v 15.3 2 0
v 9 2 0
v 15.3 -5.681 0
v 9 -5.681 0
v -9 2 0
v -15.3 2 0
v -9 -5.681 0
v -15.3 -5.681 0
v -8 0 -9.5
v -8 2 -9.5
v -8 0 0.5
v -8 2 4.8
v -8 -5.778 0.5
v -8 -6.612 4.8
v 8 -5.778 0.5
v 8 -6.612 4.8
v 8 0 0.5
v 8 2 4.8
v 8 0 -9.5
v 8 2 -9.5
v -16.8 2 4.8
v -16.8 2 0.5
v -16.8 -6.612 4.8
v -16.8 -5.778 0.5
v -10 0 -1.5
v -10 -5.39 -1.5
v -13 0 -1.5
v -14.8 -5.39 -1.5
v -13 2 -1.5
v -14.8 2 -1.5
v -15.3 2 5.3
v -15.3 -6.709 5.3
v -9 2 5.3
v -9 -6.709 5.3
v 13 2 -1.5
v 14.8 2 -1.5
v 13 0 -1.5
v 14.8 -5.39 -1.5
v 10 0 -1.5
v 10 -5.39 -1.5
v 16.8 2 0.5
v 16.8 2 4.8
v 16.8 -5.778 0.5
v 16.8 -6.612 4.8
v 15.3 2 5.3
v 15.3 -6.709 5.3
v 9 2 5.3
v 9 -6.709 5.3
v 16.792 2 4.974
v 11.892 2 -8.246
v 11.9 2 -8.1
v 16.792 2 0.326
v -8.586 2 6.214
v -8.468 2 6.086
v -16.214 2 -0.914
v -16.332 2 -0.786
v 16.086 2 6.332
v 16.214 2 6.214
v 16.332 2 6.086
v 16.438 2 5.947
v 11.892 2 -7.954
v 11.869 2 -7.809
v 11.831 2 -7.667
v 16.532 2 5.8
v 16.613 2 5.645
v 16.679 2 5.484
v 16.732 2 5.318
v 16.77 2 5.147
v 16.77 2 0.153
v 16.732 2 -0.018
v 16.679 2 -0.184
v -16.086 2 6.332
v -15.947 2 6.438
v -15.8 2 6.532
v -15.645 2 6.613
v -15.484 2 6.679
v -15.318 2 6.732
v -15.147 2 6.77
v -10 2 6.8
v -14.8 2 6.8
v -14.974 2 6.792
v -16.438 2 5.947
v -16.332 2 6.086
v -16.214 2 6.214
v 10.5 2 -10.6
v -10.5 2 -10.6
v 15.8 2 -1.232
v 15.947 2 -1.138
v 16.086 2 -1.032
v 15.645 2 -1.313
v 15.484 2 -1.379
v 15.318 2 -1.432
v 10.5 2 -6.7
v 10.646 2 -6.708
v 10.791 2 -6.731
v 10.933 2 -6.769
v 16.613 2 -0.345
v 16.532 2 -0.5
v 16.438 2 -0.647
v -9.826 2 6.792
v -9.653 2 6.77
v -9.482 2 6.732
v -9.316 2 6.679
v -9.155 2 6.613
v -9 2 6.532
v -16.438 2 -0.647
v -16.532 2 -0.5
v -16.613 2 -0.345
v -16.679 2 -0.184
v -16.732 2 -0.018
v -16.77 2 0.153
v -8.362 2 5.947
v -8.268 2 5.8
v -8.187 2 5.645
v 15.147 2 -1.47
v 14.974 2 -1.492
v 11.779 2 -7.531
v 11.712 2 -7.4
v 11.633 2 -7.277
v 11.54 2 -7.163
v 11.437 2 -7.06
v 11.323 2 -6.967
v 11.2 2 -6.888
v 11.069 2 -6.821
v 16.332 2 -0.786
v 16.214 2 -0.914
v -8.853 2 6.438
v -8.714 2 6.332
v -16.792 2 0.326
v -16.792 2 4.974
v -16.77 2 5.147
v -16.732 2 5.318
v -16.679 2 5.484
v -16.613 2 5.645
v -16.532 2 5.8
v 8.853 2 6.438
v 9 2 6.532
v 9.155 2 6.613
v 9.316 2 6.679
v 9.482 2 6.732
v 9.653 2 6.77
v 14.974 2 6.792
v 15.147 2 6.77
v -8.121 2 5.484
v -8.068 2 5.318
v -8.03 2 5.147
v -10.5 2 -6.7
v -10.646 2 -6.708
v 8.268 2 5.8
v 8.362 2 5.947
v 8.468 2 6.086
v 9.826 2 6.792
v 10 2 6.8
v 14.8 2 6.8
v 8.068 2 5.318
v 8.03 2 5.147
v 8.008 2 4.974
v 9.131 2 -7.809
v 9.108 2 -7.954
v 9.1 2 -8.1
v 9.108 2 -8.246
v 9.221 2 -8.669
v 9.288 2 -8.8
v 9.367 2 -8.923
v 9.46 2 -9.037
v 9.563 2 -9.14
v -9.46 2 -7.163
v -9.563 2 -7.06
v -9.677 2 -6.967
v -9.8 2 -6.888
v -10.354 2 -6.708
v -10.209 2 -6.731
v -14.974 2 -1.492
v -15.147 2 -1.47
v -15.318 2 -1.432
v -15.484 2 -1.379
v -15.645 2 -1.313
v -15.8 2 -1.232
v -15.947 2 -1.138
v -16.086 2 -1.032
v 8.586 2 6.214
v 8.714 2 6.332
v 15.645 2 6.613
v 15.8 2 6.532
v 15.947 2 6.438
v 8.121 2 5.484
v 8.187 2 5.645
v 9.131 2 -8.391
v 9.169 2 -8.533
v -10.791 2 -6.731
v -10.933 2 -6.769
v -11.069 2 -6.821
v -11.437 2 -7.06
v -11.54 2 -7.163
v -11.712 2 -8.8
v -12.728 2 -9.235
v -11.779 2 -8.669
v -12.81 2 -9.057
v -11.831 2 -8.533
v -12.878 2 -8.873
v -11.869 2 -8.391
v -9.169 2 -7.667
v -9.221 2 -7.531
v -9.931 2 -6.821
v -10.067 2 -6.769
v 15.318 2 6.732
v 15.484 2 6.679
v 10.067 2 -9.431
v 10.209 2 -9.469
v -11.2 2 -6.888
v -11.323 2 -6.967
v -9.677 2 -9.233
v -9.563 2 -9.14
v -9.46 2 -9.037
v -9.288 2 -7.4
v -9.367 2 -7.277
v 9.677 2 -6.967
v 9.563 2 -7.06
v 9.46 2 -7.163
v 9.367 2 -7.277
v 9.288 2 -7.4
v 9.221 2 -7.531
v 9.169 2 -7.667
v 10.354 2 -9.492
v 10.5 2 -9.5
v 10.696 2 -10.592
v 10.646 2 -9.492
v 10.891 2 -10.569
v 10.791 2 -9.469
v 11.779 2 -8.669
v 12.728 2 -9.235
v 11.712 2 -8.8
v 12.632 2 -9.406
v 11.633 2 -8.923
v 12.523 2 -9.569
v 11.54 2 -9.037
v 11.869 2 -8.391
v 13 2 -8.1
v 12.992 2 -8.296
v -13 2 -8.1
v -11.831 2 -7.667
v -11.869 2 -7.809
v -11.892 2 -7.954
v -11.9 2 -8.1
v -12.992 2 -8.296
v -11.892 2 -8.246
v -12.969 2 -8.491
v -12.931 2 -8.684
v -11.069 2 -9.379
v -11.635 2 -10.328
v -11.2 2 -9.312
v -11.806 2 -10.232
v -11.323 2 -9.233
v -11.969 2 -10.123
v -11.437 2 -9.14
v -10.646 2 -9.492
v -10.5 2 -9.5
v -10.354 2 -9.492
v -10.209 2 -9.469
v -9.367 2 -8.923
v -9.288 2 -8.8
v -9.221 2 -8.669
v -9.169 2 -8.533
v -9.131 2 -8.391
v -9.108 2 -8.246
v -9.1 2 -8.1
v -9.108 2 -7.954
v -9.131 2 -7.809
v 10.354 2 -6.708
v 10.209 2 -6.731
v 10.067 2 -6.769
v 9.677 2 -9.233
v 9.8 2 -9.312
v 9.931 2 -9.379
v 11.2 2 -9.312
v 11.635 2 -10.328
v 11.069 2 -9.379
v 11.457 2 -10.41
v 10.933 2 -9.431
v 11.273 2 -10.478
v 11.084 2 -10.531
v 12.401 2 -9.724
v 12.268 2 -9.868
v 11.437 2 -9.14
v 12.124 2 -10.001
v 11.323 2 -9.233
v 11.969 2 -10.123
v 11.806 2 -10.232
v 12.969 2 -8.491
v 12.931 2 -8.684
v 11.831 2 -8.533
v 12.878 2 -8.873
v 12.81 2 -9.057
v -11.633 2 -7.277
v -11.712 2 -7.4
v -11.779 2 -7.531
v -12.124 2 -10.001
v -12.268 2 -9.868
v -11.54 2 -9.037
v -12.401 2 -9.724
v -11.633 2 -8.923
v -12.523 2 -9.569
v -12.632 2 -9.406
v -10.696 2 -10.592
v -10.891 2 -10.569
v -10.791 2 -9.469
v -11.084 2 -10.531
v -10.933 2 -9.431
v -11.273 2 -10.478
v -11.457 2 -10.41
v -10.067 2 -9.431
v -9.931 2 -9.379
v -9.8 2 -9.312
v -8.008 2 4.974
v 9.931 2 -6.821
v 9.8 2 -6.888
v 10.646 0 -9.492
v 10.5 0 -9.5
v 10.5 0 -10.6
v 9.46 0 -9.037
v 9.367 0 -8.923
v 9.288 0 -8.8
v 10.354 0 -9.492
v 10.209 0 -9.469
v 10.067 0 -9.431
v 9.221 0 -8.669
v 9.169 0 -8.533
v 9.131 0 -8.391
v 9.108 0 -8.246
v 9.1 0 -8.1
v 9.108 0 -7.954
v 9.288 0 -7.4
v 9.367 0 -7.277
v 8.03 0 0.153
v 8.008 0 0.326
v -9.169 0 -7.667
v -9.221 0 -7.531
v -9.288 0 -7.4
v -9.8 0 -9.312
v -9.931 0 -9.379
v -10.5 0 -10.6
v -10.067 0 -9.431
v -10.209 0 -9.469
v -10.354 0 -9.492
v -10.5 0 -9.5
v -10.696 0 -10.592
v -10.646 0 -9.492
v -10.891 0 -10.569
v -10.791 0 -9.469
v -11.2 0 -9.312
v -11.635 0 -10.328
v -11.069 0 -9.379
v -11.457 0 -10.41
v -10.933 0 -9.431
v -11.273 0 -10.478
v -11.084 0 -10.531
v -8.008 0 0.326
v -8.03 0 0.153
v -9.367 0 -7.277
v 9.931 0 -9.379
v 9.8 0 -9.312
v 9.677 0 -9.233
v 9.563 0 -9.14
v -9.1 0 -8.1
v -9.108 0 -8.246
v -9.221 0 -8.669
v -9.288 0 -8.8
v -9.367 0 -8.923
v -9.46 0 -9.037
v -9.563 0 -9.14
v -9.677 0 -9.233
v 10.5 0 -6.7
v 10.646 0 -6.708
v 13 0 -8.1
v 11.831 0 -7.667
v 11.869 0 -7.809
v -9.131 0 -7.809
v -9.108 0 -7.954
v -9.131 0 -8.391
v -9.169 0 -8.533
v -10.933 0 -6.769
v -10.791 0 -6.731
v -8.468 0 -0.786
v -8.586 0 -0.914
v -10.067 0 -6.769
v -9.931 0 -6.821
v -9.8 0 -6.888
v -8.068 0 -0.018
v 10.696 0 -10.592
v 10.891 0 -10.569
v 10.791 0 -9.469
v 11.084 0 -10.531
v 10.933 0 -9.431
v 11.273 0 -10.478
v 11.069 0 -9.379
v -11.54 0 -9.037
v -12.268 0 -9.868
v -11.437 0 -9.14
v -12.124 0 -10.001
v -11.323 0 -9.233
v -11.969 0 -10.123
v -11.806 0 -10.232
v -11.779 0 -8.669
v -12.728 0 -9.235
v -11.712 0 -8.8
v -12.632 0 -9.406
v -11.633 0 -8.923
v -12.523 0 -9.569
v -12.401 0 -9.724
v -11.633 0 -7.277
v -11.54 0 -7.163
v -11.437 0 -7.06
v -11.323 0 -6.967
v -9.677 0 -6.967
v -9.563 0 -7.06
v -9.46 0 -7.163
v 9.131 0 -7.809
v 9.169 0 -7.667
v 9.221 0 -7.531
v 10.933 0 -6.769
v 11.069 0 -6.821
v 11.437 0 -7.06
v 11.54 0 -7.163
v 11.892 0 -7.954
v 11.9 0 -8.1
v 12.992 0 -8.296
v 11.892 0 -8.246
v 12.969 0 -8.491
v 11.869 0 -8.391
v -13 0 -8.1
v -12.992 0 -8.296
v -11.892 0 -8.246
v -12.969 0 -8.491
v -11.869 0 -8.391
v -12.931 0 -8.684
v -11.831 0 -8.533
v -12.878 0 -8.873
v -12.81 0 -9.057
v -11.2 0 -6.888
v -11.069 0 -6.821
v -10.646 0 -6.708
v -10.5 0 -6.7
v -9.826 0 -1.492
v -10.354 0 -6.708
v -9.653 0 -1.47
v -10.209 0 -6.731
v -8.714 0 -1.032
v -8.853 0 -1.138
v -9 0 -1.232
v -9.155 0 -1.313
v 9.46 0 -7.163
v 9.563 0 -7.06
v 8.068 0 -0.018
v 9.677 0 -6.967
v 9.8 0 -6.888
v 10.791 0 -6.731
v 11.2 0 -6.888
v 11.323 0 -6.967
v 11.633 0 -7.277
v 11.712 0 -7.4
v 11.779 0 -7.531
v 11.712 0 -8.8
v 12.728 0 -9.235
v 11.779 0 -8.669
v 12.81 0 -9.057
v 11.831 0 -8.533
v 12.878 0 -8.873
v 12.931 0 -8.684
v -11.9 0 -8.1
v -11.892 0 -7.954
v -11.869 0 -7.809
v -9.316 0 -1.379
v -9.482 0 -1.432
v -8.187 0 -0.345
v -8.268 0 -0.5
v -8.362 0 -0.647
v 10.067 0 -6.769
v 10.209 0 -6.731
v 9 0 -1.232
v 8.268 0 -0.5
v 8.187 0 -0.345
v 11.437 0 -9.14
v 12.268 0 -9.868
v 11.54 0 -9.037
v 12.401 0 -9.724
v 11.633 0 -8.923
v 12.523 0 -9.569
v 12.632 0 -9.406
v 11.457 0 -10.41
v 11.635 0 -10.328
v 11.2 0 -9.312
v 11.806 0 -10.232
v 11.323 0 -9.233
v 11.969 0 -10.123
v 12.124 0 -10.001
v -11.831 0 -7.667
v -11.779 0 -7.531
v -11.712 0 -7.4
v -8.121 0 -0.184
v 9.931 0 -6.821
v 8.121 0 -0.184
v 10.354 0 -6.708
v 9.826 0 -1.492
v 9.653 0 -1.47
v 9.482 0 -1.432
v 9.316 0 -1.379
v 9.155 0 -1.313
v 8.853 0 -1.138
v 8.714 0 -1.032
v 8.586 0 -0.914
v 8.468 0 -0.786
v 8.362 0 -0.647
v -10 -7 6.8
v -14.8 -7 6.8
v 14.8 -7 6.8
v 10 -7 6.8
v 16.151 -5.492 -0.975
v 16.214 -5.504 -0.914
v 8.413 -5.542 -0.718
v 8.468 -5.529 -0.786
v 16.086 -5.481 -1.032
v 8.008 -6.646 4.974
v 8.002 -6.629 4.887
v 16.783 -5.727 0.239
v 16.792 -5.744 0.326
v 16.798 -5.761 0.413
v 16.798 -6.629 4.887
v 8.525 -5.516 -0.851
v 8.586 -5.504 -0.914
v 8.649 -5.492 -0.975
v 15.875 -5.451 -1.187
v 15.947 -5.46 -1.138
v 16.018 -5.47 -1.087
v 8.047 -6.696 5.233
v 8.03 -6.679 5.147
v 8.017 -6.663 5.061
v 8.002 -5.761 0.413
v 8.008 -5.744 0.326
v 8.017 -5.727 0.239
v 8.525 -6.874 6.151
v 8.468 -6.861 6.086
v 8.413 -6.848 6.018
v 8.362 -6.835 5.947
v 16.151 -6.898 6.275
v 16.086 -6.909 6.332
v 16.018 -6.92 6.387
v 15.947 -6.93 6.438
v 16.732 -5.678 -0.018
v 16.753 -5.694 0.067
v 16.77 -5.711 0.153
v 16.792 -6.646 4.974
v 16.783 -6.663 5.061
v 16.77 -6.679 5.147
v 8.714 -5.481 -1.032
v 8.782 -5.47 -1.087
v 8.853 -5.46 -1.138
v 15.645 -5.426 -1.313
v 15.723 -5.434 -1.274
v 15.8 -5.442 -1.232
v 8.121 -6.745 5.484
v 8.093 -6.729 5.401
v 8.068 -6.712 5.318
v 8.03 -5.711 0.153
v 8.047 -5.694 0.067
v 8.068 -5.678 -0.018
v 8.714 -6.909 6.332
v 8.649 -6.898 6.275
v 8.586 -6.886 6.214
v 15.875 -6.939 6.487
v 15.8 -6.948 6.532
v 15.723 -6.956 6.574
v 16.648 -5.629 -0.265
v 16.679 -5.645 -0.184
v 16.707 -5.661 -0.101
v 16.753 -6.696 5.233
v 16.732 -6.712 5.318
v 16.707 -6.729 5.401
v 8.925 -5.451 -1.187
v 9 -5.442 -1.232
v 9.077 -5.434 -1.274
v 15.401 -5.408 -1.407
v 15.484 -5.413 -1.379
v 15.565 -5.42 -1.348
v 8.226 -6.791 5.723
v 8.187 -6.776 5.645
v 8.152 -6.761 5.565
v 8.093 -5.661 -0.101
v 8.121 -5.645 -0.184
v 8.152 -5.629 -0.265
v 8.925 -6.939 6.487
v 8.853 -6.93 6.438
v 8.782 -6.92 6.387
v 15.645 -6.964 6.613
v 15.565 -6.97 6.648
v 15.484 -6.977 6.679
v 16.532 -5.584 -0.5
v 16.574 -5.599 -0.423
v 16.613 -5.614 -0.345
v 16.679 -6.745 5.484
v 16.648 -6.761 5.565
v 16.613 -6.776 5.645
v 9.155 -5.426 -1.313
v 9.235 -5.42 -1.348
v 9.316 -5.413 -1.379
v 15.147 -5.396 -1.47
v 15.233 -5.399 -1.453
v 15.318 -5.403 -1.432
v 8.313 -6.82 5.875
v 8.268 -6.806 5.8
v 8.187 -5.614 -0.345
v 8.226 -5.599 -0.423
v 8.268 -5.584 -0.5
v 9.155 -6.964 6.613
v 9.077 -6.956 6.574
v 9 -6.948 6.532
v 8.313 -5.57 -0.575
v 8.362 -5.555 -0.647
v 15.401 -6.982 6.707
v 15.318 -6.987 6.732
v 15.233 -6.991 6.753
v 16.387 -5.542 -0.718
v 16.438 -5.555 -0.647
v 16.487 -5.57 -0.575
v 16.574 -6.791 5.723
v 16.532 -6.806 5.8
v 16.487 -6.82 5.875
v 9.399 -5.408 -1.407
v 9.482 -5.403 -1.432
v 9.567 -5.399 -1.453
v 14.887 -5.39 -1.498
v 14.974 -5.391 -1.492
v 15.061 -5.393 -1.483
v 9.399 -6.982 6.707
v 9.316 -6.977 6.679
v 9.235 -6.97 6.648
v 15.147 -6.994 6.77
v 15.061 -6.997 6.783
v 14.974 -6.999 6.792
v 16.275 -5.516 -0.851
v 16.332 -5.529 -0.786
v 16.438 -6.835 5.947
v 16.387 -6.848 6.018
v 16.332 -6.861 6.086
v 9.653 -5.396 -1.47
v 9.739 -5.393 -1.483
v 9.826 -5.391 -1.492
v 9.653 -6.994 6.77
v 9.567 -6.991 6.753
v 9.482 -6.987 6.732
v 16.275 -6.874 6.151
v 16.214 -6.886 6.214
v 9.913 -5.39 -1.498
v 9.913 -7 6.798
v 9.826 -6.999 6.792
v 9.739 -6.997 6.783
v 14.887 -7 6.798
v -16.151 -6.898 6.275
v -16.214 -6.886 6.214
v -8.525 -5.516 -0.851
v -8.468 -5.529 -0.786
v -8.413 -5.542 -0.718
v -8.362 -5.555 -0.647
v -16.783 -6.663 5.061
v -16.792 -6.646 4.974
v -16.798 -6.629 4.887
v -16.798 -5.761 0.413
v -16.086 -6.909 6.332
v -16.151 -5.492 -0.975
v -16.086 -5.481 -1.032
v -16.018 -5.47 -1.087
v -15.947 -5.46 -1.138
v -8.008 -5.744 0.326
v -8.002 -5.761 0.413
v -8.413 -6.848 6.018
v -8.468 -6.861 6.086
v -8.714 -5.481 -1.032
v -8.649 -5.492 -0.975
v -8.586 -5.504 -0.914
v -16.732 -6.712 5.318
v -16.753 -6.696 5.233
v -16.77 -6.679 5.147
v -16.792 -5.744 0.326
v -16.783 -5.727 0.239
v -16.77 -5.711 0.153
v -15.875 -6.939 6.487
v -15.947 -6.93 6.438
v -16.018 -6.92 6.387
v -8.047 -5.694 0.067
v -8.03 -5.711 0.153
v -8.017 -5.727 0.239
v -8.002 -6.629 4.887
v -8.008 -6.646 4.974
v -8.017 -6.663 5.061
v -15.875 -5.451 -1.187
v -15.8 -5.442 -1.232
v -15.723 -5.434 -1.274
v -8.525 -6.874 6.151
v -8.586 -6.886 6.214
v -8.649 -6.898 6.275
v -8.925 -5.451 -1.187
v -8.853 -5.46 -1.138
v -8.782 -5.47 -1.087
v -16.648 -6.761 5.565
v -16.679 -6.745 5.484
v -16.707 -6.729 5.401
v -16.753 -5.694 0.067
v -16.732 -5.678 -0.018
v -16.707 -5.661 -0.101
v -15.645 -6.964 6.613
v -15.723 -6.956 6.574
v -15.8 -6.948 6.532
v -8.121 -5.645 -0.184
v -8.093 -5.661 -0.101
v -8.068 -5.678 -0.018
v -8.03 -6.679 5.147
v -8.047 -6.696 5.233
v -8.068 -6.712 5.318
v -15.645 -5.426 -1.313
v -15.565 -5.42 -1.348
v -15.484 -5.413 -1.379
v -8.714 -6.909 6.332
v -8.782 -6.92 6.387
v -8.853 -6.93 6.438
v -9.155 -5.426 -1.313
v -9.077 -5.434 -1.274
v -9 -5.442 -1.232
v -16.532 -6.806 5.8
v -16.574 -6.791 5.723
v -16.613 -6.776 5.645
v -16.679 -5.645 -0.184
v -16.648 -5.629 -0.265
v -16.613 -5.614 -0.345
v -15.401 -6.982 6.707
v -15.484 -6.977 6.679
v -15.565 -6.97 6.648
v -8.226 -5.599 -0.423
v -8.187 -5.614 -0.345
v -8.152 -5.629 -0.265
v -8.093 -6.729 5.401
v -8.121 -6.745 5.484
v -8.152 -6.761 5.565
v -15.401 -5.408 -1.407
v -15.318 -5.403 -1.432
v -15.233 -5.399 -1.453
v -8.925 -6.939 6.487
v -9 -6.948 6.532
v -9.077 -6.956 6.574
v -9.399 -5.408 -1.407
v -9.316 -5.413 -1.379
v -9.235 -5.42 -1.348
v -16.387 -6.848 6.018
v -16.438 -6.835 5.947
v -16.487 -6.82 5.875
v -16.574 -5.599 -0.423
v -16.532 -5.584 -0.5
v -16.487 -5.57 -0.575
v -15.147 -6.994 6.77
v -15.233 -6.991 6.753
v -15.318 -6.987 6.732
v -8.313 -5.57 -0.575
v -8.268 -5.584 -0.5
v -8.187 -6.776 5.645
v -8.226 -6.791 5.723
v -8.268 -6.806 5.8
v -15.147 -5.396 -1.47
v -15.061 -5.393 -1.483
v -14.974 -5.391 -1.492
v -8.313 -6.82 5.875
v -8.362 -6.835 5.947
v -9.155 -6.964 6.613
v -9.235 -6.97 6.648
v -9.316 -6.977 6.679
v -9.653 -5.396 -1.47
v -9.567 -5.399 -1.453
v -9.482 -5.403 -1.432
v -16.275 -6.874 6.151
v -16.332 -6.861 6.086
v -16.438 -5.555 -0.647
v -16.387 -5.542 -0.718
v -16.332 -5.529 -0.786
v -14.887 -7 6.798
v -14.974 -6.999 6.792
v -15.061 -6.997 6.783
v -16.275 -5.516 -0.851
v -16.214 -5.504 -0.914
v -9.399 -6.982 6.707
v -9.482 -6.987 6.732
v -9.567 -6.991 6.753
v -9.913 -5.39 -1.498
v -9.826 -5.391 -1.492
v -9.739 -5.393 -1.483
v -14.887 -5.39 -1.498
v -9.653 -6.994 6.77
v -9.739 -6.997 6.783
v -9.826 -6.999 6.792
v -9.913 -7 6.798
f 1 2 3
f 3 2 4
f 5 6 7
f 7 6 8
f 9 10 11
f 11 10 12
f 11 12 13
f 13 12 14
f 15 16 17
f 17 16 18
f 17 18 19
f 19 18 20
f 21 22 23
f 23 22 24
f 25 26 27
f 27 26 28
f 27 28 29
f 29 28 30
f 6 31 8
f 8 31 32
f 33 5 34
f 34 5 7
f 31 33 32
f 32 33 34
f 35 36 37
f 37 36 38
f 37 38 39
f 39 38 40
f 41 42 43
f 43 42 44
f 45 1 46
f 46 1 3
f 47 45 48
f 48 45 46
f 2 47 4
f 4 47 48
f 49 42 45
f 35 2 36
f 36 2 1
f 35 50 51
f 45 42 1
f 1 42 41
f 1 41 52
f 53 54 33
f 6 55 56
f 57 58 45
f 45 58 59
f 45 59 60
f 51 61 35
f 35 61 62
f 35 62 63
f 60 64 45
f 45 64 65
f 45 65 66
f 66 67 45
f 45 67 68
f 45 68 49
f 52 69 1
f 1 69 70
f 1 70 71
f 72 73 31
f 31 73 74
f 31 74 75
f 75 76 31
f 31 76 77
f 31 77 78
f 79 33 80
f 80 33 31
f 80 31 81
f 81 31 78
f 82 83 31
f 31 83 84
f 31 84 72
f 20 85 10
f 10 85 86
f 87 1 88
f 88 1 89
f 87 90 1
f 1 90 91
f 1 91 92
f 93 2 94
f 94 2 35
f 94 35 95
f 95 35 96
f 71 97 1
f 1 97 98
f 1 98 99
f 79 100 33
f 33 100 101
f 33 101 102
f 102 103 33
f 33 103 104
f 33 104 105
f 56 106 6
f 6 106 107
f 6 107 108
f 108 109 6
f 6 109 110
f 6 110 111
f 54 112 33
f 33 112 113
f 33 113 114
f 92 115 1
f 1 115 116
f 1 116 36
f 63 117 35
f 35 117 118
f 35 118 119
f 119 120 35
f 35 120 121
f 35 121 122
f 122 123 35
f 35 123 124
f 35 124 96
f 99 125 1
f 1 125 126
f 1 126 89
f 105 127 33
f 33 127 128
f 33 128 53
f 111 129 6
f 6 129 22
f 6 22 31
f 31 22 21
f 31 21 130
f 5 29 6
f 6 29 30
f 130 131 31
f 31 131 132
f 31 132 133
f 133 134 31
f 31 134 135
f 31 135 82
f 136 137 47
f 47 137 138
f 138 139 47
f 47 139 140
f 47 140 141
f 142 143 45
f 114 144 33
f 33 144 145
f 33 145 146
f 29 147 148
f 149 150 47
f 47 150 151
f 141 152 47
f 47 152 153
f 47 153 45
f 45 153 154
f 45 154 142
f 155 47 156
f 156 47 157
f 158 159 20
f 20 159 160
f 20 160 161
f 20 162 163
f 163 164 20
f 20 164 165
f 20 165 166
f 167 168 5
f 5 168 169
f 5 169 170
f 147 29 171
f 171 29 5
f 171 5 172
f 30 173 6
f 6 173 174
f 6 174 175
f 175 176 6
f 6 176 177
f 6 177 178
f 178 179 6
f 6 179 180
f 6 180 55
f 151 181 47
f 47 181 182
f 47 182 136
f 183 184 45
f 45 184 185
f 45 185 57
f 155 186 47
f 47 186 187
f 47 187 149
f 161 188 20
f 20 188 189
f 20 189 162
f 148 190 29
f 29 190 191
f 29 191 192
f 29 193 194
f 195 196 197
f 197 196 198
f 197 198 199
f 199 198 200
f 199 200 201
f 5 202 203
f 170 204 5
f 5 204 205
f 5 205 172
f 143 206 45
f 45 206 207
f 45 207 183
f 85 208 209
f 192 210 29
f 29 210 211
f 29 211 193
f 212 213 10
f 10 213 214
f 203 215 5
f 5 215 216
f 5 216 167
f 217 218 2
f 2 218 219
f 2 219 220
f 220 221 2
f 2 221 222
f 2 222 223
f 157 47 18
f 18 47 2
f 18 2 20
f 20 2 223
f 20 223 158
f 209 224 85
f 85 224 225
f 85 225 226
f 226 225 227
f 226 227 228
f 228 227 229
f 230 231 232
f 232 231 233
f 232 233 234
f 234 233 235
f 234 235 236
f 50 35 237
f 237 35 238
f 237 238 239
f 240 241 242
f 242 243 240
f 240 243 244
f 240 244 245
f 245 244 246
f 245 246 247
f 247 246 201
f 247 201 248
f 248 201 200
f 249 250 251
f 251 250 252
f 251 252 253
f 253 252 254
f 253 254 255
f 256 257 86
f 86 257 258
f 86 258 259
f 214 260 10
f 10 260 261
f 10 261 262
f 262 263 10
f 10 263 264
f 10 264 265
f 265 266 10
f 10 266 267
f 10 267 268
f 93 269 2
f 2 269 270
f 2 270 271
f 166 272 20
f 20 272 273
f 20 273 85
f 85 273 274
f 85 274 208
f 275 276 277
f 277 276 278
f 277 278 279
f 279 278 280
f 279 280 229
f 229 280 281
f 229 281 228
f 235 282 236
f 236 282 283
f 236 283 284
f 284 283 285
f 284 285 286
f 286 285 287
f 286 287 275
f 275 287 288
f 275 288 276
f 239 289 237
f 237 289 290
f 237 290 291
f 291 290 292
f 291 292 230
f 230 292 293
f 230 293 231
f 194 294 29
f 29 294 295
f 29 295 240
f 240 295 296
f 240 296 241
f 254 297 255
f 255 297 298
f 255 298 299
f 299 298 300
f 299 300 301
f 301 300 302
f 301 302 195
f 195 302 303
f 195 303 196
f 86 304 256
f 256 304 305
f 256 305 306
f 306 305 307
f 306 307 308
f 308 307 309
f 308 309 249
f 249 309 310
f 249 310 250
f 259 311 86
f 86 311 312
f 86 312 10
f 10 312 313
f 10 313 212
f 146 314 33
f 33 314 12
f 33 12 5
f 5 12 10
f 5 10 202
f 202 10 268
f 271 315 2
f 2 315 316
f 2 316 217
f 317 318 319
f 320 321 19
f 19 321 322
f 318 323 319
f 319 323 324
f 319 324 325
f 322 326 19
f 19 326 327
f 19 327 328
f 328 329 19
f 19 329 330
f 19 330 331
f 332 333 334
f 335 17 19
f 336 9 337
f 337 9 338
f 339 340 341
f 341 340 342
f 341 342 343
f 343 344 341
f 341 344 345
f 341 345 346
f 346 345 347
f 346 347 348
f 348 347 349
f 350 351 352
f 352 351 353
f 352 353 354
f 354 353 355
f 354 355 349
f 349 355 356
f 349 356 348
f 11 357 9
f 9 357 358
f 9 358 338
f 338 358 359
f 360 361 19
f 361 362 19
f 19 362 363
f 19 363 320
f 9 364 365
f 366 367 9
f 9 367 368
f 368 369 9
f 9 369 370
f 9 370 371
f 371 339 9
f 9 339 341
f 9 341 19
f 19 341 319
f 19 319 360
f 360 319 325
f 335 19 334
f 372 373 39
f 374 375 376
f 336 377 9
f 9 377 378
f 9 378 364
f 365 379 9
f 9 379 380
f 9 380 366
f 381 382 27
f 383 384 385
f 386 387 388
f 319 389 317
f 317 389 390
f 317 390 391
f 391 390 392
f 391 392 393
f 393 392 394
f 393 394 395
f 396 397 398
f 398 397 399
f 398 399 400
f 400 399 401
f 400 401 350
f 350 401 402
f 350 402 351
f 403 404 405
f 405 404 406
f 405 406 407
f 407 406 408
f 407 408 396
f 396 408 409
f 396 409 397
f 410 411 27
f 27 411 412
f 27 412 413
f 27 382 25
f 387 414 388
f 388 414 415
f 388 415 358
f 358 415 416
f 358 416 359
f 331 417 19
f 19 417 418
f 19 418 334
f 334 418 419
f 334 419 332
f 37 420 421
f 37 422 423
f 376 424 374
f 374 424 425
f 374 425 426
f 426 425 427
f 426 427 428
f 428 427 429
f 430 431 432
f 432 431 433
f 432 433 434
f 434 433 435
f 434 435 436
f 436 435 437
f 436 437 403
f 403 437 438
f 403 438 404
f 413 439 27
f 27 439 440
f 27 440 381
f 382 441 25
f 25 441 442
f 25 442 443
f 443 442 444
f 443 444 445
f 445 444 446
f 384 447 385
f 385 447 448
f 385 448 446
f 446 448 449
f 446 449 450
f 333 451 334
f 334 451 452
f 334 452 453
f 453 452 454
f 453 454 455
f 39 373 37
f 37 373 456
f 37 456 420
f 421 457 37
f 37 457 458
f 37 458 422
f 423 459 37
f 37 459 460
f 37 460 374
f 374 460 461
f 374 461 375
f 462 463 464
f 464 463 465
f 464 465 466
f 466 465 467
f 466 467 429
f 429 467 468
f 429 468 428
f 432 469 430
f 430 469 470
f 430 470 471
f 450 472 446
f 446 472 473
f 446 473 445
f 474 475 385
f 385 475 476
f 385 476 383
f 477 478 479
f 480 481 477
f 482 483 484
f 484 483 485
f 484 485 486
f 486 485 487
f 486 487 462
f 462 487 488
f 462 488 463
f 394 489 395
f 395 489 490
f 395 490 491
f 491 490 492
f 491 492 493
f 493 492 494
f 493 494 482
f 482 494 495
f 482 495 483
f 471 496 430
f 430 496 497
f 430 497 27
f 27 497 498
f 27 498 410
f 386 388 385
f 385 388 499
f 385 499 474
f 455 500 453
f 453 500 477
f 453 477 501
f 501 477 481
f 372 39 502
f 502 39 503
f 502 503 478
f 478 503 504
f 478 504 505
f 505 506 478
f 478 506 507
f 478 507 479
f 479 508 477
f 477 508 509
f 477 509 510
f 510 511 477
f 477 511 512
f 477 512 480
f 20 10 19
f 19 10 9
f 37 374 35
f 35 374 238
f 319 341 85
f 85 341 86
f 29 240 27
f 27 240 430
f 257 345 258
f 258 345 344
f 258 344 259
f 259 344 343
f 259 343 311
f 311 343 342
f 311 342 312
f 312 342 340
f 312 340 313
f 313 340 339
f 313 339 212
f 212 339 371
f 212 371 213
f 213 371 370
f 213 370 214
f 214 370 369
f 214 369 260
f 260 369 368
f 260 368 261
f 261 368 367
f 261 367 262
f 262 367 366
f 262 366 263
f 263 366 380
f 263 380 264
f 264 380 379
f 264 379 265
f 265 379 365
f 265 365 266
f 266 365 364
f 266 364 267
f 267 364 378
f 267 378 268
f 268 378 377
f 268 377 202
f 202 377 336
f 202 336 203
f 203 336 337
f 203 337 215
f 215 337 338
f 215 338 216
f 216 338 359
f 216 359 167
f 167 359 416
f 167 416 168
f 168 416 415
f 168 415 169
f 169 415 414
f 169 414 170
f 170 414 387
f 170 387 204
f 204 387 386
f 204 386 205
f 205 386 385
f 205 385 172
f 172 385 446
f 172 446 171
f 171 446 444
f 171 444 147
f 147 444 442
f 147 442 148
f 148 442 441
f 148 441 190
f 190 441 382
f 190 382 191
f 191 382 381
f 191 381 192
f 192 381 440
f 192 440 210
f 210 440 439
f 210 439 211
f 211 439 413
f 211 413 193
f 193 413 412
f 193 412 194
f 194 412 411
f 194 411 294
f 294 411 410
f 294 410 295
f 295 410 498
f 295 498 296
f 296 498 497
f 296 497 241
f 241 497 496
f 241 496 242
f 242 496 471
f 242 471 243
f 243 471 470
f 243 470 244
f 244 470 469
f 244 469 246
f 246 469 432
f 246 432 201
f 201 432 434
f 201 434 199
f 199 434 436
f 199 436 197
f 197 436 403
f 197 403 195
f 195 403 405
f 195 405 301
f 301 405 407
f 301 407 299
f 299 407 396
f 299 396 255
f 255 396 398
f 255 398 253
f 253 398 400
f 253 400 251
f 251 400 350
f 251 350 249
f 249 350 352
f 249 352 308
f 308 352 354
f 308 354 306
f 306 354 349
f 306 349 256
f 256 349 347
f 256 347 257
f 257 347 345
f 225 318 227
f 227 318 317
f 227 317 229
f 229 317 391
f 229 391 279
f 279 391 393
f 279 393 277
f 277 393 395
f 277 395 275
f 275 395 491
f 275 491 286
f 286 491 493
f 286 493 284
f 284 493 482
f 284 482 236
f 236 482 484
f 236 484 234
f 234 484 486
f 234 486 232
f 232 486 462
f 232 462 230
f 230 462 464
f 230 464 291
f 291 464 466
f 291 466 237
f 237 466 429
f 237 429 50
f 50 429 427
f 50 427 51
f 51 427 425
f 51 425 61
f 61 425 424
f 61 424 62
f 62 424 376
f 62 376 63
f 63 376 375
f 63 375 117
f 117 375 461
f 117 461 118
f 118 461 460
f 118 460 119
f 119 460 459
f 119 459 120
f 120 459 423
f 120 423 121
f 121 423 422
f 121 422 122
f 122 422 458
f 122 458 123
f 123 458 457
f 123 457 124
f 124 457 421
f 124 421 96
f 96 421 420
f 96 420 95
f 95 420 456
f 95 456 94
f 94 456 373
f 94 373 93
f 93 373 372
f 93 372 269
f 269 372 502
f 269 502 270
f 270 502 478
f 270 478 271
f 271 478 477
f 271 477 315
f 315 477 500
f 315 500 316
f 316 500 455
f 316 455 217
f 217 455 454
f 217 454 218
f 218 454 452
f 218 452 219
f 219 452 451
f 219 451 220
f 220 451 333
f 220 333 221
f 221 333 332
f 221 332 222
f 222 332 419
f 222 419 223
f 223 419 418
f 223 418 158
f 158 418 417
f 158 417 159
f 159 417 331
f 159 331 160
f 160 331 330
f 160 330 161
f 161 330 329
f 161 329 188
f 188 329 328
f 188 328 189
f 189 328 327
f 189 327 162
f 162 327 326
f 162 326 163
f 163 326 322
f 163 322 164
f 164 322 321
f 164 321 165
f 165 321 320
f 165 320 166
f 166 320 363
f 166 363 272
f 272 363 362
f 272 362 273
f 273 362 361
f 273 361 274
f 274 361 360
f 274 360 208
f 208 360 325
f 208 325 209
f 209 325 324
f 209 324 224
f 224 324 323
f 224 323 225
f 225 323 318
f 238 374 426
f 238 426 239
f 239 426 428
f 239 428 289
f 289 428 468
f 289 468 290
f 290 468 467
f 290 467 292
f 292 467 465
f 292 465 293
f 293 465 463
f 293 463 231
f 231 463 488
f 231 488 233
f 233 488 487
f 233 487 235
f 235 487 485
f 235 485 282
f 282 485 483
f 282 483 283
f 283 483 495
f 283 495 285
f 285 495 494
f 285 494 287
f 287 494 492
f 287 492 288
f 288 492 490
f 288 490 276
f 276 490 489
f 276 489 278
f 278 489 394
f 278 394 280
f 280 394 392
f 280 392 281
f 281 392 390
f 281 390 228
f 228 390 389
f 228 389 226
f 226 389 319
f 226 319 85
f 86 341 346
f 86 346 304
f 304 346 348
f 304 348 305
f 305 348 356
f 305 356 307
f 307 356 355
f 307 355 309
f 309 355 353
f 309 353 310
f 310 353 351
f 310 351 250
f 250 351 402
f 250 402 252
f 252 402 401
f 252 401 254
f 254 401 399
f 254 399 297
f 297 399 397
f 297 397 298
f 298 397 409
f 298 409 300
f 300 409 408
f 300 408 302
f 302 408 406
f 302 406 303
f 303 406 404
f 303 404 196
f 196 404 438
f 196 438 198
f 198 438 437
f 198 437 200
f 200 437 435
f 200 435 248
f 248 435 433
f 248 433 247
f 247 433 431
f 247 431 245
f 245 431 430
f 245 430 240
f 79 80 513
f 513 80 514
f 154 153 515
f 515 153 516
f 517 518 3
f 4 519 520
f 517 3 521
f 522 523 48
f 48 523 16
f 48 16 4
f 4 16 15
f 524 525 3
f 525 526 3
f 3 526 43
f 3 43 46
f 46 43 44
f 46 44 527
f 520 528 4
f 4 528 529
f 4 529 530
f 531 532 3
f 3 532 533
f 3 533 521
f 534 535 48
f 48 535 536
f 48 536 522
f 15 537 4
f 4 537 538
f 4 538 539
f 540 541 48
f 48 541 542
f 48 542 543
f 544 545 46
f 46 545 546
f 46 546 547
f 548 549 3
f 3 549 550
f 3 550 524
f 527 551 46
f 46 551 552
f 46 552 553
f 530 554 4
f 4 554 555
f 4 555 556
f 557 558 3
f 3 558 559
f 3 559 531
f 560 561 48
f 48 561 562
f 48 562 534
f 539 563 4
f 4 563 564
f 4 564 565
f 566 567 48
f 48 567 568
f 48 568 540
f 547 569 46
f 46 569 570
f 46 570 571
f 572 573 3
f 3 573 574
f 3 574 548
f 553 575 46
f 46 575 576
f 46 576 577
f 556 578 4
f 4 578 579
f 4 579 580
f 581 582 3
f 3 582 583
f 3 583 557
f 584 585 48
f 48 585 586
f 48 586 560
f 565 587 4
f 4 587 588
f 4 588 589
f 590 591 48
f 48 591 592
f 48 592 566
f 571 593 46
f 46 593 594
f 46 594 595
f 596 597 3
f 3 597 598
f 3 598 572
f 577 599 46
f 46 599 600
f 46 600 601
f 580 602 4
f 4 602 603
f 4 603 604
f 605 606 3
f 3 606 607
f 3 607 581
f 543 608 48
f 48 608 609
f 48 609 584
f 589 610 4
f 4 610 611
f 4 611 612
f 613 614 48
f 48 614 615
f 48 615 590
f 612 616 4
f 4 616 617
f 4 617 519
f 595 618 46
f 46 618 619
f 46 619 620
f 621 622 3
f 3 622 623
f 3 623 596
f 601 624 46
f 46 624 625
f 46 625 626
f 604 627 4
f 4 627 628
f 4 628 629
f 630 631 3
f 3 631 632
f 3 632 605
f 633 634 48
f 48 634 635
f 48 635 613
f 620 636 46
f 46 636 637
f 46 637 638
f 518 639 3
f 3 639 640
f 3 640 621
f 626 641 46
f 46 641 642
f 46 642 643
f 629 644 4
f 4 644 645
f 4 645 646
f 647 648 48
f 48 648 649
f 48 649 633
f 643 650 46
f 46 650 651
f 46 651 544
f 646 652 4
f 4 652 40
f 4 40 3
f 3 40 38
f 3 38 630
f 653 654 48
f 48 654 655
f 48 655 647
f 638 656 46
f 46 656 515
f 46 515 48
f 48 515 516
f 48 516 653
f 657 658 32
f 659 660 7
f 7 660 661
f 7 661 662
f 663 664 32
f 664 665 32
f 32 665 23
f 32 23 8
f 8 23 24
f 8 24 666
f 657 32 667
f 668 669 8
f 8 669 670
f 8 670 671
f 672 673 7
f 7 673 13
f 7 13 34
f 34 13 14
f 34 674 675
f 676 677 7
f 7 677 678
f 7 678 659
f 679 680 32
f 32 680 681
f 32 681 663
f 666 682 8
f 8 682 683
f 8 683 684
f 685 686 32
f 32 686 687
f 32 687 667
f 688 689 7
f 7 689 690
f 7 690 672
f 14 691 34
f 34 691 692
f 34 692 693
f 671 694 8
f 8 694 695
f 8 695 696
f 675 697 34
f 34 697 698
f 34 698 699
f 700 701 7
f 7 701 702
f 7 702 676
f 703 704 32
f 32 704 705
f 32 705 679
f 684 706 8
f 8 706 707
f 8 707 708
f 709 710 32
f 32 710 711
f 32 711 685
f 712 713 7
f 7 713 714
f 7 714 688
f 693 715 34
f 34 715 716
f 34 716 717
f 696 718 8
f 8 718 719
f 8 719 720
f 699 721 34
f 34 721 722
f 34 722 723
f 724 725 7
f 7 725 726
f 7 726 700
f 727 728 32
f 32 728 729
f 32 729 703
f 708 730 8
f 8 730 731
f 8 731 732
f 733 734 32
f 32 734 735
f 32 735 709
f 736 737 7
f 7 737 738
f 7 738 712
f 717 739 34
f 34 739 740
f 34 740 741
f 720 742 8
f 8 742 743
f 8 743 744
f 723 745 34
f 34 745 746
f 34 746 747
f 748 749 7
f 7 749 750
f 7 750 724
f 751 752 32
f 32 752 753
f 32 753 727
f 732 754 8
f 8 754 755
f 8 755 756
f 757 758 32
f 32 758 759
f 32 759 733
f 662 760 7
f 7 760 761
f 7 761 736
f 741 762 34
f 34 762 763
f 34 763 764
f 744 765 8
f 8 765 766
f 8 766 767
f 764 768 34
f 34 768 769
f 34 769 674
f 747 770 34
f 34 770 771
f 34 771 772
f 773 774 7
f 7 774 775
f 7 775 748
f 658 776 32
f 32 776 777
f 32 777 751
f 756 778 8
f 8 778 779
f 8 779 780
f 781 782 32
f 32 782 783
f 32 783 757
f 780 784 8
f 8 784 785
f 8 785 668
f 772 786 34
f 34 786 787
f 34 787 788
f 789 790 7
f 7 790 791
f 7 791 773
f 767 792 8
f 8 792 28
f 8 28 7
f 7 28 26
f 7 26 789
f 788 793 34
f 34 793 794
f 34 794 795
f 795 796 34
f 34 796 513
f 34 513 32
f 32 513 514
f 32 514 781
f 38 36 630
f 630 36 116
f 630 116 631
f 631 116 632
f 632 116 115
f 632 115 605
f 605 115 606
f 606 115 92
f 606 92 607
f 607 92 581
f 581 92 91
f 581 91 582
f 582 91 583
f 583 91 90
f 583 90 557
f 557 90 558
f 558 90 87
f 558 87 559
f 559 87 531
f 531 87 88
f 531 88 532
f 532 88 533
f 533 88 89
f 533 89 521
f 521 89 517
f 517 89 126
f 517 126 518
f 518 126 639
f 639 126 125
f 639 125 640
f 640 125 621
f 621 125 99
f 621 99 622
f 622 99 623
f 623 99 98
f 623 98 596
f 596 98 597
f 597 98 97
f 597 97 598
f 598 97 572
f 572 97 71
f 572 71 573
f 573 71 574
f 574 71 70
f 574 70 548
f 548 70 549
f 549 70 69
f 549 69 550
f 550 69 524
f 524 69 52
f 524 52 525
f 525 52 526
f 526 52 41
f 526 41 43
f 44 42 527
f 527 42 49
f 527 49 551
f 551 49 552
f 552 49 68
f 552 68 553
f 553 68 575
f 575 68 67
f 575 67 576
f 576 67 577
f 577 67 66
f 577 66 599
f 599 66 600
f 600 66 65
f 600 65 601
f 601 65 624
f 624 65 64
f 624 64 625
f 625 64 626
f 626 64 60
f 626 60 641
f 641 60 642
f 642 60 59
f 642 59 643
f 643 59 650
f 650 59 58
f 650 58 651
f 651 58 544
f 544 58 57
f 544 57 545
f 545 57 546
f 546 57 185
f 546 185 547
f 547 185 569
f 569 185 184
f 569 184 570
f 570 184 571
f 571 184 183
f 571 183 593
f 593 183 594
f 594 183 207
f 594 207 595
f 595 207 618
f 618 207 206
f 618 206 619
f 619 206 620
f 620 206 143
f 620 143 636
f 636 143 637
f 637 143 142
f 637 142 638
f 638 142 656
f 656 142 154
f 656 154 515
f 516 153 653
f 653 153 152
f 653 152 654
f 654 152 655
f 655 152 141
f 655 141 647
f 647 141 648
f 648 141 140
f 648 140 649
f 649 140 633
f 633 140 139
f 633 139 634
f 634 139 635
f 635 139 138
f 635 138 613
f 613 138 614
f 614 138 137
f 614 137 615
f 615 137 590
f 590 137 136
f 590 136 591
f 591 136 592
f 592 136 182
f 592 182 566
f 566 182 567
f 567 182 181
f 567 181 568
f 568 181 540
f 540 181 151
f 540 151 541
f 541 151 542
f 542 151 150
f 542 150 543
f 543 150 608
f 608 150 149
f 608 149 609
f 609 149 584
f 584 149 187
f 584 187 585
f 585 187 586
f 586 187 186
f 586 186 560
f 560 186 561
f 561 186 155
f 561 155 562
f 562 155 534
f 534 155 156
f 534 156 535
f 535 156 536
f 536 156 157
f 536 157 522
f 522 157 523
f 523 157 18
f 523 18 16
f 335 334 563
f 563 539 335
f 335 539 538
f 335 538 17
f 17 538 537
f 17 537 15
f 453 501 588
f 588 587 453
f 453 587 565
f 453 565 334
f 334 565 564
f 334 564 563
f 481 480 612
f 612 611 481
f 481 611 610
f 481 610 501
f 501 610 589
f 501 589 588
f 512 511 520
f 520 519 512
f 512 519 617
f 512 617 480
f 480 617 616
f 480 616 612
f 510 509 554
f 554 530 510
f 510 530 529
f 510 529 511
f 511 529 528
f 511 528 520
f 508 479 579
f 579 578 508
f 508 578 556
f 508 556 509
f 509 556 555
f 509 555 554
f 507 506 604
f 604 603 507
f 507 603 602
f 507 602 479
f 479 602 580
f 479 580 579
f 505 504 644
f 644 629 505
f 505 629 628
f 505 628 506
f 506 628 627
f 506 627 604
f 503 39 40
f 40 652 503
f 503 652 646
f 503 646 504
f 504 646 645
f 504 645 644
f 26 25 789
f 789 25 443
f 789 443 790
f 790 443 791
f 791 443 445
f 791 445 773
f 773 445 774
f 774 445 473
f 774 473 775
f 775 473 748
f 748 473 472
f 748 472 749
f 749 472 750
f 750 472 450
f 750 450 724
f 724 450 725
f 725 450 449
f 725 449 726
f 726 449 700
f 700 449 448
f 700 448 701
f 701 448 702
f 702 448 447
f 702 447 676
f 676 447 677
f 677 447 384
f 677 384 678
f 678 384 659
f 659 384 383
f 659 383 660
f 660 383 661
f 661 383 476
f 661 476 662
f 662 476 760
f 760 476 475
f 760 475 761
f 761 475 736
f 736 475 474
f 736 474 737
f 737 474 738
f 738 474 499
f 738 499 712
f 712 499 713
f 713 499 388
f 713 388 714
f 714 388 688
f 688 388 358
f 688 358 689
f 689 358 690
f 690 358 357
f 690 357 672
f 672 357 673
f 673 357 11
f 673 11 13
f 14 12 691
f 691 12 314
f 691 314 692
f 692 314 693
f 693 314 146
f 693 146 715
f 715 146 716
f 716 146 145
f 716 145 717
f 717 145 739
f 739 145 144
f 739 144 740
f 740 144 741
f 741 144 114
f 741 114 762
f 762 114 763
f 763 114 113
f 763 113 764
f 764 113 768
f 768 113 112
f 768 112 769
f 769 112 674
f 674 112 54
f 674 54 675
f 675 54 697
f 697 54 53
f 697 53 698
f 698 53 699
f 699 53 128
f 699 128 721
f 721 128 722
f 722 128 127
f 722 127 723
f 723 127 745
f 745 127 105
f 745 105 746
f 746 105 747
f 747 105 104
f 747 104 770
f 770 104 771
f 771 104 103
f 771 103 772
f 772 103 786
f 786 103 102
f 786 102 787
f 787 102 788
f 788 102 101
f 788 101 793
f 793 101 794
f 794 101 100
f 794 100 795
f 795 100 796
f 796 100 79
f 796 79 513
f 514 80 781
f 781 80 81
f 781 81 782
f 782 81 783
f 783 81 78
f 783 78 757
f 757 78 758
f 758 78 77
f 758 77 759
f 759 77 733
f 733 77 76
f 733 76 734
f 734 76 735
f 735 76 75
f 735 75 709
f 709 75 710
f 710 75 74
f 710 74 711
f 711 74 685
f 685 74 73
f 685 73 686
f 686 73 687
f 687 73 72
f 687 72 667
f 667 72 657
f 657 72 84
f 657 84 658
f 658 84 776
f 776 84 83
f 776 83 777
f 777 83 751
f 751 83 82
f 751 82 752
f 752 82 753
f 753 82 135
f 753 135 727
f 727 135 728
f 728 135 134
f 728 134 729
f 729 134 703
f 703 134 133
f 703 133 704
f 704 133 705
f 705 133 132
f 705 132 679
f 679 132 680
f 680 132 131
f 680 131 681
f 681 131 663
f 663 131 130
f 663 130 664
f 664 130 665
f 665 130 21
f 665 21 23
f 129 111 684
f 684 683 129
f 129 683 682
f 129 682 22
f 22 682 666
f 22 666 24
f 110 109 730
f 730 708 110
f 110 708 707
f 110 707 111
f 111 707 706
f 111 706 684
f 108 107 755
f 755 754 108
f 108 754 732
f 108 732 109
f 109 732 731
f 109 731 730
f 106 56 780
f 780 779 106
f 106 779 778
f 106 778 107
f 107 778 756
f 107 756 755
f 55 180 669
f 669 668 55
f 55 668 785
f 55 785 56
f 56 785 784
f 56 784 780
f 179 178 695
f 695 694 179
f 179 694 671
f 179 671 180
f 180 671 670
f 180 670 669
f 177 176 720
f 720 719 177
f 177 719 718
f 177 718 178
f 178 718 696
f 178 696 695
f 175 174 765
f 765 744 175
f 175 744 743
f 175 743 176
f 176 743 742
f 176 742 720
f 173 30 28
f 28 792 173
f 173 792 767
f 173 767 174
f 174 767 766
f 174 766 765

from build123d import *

# Parameters (mm, degrees)
SKETCH1_R           = 1.4
BOSS_EXTRUDE1_DEPTH = 2
FILLET1_R           = 2.5
SKETCH2_W           = 8.8
SKETCH2_H           = 8.3
SKETCH2_W_2         = 6.3
SKETCH2_H_2         = 5.3
BOSS_EXTRUDE2_DEPTH = 9
CUT_EXTRUDE1_DEPTH  = 36.921024484
FILLET2_R           = 2


with BuildPart() as part:
    # Sketch1 → Boss-Extrude1 (new body)
    with BuildSketch(Plane(origin=(0, 0, 0), x_dir=(1, 0, 0), z_dir=(0, 1, 0))):
        Polygon((-13, 0), (-13, 10.6), (13, 10.6), (13, 0), (8, 0), (8, 9.5), (-8, 9.5), (-8, 0), align=None)
        with Locations(Location((-10.5, 8.1, 0), (0, 0, 270))):
            Circle(SKETCH1_R, mode=Mode.SUBTRACT)
        with Locations(Location((10.5, 8.1, 0), (0, 0, 270))):
            Circle(SKETCH1_R, mode=Mode.SUBTRACT)
    extrude(amount=BOSS_EXTRUDE1_DEPTH)

    # Fillet1
    fillet1_edges = [part.edges().sort_by_distance(p)[0] for p in [
        (-13, 1, -10.6),
        (13, 1, -10.6),
    ]]
    fillet(fillet1_edges, radius=FILLET1_R)

    # Sketch2 → Boss-Extrude2 (add)
    # profile 1 of 2: a face of its own
    with BuildSketch(Plane(origin=(0, 2, 0), x_dir=(1, 0, 0), z_dir=(0, 1, 0))):
        with Locations((-12.4, -2.65)):
            Rectangle(SKETCH2_W, SKETCH2_H)
        with Locations((-12.15, -2.65)):
            Rectangle(SKETCH2_W_2, SKETCH2_H_2, mode=Mode.SUBTRACT)
    # profile 2 of 2: a face of its own
    with BuildSketch(Plane(origin=(0, 2, 0), x_dir=(1, 0, 0), z_dir=(0, 1, 0))):
        with Locations((12.4, -2.65)):
            Rectangle(SKETCH2_W, SKETCH2_H)
        with Locations((12.15, -2.65)):
            Rectangle(SKETCH2_W_2, SKETCH2_H_2, mode=Mode.SUBTRACT)
    extrude(amount=-BOSS_EXTRUDE2_DEPTH)

    # Sketch3 → Cut-Extrude1 (cut, through all)
    with BuildSketch(Plane.ZY.offset(16.8)):
        Polygon((-37.097656143, -7), (-1.5, -7), (6.8, -7), (-1.5, -5.39), (-36.44627134, 1.388734561), (-107.427912809, 6.900455328), (-108.079297611, -1.488279233), align=None)
    extrude(amount=-CUT_EXTRUDE1_DEPTH, mode=Mode.SUBTRACT)

    # Fillet2
    fillet2_edges = [part.edges().sort_by_distance(p)[0] for p in [
        (16.8, -1.695, -1.5),
        (8, -2.695, -1.5),
        (-8, -2.695, -1.5),
        (-16.8, -1.695, -1.5),
        (-16.8, -2.5, 6.8),
        (-8, -2.5, 6.8),
        (16.8, -2.5, 6.8),
        (8, -2.5, 6.8),
    ]]
    fillet(fillet2_edges, radius=FILLET2_R)


solid = part.part
